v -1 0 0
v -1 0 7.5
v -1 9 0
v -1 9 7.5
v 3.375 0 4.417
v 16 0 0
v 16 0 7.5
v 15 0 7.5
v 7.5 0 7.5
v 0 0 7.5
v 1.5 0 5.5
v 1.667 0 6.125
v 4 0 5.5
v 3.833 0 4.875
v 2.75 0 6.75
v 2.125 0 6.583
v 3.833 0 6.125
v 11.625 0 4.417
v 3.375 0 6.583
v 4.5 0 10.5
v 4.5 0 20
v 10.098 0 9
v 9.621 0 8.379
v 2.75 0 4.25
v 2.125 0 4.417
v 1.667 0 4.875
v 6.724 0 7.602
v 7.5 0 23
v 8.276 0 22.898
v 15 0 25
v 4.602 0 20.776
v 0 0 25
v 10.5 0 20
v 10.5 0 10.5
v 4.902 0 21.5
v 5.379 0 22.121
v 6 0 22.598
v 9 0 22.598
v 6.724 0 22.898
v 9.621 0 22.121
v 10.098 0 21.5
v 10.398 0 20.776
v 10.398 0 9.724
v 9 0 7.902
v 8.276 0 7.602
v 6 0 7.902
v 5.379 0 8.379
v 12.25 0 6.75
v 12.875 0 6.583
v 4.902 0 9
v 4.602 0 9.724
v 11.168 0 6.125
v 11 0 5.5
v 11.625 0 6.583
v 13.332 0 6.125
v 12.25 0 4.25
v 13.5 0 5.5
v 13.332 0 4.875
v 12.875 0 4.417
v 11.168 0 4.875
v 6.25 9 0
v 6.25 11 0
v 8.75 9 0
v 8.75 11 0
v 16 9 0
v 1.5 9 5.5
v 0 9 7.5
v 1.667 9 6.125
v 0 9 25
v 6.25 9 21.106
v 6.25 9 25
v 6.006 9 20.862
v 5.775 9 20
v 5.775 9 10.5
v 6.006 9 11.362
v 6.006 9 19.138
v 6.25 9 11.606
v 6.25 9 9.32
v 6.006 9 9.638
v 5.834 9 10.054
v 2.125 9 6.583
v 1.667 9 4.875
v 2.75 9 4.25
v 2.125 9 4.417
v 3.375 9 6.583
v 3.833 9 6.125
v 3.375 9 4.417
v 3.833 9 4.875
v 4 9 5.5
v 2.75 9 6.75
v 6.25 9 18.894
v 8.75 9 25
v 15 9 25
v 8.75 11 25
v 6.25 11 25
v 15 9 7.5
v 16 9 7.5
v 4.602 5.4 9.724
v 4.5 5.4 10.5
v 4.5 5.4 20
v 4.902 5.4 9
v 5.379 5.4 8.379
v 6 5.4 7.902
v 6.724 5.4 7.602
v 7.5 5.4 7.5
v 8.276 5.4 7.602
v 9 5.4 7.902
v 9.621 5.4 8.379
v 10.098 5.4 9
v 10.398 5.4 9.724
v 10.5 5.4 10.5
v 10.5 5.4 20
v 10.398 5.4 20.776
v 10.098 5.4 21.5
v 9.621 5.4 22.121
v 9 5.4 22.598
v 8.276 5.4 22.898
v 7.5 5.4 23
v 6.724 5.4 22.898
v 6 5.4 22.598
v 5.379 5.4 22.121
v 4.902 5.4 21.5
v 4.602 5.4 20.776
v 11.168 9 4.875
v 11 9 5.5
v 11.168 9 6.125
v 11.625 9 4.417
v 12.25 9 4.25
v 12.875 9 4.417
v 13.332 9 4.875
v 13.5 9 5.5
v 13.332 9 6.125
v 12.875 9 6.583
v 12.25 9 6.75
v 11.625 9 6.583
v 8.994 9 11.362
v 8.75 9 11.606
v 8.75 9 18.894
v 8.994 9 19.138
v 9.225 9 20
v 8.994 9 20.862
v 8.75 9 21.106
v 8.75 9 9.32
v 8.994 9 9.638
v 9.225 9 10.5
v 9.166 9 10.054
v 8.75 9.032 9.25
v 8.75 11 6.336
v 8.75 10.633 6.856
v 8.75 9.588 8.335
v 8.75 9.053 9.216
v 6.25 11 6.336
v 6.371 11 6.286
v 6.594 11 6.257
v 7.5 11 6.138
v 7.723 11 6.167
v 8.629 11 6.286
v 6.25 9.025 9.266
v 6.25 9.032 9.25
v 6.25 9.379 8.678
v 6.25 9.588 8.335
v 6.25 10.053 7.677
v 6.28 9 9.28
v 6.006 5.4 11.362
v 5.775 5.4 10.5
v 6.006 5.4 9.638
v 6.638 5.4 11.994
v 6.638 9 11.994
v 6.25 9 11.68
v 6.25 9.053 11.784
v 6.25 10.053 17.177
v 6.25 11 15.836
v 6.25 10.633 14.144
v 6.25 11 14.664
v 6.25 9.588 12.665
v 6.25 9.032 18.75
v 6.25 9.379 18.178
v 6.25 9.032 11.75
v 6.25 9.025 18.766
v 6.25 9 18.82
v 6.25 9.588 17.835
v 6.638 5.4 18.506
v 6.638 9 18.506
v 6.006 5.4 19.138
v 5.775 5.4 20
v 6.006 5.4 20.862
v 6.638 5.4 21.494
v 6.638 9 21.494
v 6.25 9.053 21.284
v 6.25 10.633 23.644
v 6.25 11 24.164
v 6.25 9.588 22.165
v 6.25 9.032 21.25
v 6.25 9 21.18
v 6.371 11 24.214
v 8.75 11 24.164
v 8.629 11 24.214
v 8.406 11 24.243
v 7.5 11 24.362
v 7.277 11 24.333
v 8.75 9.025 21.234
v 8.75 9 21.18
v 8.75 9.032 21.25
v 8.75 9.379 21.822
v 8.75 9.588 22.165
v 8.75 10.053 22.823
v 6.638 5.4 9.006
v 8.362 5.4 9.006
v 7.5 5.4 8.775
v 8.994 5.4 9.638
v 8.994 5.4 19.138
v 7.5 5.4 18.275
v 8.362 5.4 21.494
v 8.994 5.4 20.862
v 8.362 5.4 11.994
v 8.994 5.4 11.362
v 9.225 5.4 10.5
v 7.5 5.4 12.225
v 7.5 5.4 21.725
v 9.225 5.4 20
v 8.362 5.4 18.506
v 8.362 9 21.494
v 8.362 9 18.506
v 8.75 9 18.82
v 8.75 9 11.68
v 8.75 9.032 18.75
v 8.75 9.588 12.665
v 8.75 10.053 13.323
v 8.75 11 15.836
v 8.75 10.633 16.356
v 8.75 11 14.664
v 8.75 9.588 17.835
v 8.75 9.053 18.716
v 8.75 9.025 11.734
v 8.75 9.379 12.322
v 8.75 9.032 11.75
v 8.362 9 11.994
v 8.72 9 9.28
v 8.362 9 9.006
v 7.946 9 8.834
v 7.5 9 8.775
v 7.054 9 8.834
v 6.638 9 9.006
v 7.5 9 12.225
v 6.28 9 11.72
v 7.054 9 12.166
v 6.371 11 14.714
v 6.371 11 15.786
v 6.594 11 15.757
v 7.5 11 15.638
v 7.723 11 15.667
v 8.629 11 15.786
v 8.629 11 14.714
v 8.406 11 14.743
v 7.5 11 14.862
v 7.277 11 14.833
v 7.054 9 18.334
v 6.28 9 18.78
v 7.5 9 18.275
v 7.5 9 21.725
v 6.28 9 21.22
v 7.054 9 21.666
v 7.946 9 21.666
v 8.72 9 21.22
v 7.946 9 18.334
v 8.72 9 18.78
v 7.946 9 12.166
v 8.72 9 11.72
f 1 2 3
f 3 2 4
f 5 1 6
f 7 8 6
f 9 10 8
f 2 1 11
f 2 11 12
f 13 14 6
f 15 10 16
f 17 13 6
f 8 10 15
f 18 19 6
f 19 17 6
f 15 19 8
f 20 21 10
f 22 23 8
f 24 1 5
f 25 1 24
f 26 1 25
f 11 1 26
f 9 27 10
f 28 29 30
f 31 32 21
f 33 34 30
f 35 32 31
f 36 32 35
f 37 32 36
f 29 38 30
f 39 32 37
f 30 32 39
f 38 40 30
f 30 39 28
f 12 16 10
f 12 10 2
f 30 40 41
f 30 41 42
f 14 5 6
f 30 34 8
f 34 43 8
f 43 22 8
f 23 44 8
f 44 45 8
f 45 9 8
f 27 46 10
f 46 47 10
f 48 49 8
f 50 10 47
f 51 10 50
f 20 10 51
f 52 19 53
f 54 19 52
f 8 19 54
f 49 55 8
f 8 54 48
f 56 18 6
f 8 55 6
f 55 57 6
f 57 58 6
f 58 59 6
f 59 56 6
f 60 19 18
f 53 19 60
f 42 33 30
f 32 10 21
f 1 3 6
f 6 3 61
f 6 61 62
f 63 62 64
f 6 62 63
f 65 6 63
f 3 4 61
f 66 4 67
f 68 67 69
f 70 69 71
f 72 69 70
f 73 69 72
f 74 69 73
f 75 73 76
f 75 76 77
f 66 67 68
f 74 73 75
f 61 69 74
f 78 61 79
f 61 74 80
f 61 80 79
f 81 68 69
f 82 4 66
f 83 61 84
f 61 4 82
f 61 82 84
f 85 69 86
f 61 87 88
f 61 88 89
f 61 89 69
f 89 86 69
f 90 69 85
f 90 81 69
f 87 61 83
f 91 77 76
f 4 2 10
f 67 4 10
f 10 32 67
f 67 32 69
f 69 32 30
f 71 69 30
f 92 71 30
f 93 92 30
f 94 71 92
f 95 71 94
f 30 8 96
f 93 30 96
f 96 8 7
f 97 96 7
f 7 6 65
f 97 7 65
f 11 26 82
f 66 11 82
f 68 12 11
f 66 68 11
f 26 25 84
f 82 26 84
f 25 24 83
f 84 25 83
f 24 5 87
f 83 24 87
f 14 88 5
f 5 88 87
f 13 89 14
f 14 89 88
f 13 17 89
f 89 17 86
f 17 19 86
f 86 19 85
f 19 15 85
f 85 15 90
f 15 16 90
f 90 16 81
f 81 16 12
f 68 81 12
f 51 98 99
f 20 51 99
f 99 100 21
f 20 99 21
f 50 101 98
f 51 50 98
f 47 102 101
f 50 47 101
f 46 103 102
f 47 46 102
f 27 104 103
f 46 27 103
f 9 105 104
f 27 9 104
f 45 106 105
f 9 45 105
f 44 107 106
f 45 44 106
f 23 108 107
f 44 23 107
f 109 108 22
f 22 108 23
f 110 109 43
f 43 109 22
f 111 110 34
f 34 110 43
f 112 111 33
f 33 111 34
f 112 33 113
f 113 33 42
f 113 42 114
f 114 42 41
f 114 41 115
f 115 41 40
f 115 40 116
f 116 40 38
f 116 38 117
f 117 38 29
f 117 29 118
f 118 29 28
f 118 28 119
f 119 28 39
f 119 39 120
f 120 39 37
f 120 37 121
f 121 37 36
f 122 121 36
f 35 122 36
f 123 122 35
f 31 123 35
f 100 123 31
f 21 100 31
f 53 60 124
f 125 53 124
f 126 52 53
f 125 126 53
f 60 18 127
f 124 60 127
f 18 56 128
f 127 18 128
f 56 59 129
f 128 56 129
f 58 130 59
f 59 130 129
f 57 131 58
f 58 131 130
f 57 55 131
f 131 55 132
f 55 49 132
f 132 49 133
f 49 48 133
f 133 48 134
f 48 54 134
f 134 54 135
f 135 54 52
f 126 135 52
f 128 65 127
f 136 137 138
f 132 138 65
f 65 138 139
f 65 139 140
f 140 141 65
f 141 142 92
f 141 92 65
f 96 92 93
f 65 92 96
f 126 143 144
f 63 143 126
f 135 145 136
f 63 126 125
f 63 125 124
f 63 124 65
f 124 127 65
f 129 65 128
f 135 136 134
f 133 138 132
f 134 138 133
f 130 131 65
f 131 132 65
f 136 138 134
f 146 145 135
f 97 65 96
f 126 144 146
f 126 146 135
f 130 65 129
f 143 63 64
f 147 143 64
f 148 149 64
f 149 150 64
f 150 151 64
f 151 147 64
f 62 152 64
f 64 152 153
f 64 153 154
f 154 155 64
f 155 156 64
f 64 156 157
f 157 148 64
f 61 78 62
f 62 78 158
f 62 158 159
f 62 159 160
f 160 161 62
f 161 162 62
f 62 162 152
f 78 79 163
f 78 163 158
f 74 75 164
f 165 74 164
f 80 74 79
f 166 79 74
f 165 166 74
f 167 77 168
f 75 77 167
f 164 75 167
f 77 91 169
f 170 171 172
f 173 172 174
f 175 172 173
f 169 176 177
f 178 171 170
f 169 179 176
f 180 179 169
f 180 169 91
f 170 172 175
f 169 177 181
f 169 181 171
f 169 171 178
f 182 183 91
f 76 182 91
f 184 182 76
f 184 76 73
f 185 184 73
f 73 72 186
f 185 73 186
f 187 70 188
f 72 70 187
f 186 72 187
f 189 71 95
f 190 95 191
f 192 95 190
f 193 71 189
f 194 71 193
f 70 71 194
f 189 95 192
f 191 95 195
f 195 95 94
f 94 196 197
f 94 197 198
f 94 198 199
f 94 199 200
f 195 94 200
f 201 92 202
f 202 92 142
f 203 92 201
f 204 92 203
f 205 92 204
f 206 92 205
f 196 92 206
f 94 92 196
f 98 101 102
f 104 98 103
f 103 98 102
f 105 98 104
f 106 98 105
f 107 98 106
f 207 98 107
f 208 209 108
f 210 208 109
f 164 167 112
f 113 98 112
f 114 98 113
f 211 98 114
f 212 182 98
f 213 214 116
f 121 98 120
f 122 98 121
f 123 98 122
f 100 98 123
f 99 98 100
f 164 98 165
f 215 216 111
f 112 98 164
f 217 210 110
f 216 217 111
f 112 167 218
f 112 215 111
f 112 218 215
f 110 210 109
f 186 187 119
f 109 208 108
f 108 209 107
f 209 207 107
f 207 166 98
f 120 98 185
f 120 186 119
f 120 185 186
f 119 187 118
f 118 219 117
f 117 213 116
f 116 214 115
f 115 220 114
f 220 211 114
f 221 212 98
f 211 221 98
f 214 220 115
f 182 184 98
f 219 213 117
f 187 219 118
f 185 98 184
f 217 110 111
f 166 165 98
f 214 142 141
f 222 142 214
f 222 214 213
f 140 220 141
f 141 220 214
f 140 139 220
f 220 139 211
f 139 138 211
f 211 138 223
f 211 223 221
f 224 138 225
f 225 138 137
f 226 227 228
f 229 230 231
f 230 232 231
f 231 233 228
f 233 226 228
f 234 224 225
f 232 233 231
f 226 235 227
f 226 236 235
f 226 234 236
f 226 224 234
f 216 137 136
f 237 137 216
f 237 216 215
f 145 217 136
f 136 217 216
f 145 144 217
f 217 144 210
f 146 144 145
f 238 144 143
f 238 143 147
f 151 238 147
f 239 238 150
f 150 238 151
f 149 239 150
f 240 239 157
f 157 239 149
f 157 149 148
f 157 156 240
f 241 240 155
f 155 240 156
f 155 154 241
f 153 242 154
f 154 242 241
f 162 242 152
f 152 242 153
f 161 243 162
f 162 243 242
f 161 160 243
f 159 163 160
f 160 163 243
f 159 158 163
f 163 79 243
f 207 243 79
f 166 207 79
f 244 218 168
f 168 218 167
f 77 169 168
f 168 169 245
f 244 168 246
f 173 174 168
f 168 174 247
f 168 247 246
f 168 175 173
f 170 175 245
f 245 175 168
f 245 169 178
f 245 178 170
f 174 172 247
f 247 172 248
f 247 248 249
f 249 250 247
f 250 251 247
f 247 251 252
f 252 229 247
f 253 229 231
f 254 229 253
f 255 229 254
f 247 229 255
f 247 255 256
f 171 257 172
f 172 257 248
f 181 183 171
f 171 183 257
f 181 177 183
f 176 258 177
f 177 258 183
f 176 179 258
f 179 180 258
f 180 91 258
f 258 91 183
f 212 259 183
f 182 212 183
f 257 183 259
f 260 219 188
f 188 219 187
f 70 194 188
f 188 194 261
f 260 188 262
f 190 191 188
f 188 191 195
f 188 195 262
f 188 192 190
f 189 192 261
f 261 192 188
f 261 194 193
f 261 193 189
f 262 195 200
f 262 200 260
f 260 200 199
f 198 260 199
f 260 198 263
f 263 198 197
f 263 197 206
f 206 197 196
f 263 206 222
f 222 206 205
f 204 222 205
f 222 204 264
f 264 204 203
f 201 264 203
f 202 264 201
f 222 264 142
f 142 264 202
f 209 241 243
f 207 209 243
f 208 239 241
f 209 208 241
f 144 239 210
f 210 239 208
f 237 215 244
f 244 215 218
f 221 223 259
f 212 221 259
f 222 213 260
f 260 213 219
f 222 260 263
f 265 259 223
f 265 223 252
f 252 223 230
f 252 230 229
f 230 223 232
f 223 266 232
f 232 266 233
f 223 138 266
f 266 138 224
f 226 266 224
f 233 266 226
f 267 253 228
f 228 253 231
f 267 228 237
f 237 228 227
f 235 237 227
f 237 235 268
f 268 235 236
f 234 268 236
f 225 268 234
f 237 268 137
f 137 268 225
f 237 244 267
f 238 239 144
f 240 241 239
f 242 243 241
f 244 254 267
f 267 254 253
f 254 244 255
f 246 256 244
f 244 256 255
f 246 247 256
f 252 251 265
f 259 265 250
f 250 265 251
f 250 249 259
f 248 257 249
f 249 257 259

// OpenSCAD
// file: microswitch.scad
// Don't print this file, purchase real micro switches
// e.g. Honeywell ZM10B10A01 or OMRON SS-5 or similar.

module microswitch() {
  difference() {
    union() {
      translate([0, 0, 2.5])
        cube([19.8, 6, 10], center=true);
      translate([2.5, 0.5, 6])
        cube([2, 3.5, 5], center=true);
      for (x = [-8, -1, 8]) {
        translate([x, 0, 0])
          cube([0.6, 3.2, 13], center=true);
      }
    }
    for (x = [-9.5/2, 9.5/2]) {
      translate([x, 0, 0]) rotate([90, 0, 0])
        cylinder(r=2.5/2, h=20, center=true, $fn=12);
    }
  }
}

microswitch();
// file: configuration.scad
// Increase this if your slicer or printer make holes too tight.
extra_radius = 0.1;

// OD = outside diameter, corner to corner.
m3_nut_od = 6.1;
m3_nut_radius = m3_nut_od/2 + 0.2 + extra_radius;
m3_washer_radius = 3.5 + extra_radius;

// Major diameter of metric 3mm thread.
m3_major = 2.85;
m3_radius = m3_major/2 + extra_radius;
m3_wide_radius = m3_major/2 + extra_radius + 0.2;

// NEMA17 stepper motors.
motor_shaft_diameter = 5;
motor_shaft_radius = motor_shaft_diameter/2 + extra_radius;

// Frame brackets. M3x8mm screws work best with 3.6 mm brackets.
thickness = 3.6;

// OpenBeam or Misumi. Currently only 15x15 mm, but there is a plan
// to make models more parametric and allow 20x20 mm in the future.
extrusion = 15;

// Placement for the NEMA17 stepper motors.
motor_offset = 44;
motor_length = 47;
// main file
include <configuration.scad>;

use <microswitch.scad>;

thickness = 9;  // 1mm thicker than linear rail.
width = 15;  // Same as vertical extrusion.
height = 25;
hswitch=7.5;

module endstop() {
  difference() {
    union() {
      cube([width, thickness, height]);
      translate([-1, 0, 0])
        cube([width+2, thickness, hswitch]);
      translate([(width-2.5)/2, 2, 0])
        cube([2.5, thickness, height]);
    }
    translate([width/2, thickness/2, hswitch +3]) rotate([90, 0, 0]) {
      cylinder(r=m3_wide_radius, h=20, center=true, $fn=12);
      translate([0,height-hswitch-8,0])cylinder(r=m3_wide_radius, h=20, center=true, $fn=12);
      translate([0, 0, 3.6-thickness/2]) {
        cylinder(r=3, h=10, $fn=24);
        translate([-3, 0, 0])
          cube([6, height-hswitch-8, 10]);
        translate([0,height-hswitch-8,0])cylinder(r=3, h=10, $fn=24);
      }
      translate([0, 0, -thickness/2]) scale([1, 1, -1])
        cylinder(r1=m3_wide_radius, r2=7, h=4, $fn=24);
      translate([0, height-hswitch-8, -thickness/2]) scale([1, 1, -1])
        cylinder(r1=m3_wide_radius, r2=7, h=4, $fn=24);
    }
    translate([width/2, -3, hswitch-2]) rotate([0, 180, 0]) {
      % microswitch();
      for (x = [-9.5/2, 9.5/2]) {
        translate([x, 0, 0]) rotate([90, 0, 0])
          cylinder(r=2.5/2, h=40, center=true, $fn=12);
      }
    }
  }
}

endstop();
